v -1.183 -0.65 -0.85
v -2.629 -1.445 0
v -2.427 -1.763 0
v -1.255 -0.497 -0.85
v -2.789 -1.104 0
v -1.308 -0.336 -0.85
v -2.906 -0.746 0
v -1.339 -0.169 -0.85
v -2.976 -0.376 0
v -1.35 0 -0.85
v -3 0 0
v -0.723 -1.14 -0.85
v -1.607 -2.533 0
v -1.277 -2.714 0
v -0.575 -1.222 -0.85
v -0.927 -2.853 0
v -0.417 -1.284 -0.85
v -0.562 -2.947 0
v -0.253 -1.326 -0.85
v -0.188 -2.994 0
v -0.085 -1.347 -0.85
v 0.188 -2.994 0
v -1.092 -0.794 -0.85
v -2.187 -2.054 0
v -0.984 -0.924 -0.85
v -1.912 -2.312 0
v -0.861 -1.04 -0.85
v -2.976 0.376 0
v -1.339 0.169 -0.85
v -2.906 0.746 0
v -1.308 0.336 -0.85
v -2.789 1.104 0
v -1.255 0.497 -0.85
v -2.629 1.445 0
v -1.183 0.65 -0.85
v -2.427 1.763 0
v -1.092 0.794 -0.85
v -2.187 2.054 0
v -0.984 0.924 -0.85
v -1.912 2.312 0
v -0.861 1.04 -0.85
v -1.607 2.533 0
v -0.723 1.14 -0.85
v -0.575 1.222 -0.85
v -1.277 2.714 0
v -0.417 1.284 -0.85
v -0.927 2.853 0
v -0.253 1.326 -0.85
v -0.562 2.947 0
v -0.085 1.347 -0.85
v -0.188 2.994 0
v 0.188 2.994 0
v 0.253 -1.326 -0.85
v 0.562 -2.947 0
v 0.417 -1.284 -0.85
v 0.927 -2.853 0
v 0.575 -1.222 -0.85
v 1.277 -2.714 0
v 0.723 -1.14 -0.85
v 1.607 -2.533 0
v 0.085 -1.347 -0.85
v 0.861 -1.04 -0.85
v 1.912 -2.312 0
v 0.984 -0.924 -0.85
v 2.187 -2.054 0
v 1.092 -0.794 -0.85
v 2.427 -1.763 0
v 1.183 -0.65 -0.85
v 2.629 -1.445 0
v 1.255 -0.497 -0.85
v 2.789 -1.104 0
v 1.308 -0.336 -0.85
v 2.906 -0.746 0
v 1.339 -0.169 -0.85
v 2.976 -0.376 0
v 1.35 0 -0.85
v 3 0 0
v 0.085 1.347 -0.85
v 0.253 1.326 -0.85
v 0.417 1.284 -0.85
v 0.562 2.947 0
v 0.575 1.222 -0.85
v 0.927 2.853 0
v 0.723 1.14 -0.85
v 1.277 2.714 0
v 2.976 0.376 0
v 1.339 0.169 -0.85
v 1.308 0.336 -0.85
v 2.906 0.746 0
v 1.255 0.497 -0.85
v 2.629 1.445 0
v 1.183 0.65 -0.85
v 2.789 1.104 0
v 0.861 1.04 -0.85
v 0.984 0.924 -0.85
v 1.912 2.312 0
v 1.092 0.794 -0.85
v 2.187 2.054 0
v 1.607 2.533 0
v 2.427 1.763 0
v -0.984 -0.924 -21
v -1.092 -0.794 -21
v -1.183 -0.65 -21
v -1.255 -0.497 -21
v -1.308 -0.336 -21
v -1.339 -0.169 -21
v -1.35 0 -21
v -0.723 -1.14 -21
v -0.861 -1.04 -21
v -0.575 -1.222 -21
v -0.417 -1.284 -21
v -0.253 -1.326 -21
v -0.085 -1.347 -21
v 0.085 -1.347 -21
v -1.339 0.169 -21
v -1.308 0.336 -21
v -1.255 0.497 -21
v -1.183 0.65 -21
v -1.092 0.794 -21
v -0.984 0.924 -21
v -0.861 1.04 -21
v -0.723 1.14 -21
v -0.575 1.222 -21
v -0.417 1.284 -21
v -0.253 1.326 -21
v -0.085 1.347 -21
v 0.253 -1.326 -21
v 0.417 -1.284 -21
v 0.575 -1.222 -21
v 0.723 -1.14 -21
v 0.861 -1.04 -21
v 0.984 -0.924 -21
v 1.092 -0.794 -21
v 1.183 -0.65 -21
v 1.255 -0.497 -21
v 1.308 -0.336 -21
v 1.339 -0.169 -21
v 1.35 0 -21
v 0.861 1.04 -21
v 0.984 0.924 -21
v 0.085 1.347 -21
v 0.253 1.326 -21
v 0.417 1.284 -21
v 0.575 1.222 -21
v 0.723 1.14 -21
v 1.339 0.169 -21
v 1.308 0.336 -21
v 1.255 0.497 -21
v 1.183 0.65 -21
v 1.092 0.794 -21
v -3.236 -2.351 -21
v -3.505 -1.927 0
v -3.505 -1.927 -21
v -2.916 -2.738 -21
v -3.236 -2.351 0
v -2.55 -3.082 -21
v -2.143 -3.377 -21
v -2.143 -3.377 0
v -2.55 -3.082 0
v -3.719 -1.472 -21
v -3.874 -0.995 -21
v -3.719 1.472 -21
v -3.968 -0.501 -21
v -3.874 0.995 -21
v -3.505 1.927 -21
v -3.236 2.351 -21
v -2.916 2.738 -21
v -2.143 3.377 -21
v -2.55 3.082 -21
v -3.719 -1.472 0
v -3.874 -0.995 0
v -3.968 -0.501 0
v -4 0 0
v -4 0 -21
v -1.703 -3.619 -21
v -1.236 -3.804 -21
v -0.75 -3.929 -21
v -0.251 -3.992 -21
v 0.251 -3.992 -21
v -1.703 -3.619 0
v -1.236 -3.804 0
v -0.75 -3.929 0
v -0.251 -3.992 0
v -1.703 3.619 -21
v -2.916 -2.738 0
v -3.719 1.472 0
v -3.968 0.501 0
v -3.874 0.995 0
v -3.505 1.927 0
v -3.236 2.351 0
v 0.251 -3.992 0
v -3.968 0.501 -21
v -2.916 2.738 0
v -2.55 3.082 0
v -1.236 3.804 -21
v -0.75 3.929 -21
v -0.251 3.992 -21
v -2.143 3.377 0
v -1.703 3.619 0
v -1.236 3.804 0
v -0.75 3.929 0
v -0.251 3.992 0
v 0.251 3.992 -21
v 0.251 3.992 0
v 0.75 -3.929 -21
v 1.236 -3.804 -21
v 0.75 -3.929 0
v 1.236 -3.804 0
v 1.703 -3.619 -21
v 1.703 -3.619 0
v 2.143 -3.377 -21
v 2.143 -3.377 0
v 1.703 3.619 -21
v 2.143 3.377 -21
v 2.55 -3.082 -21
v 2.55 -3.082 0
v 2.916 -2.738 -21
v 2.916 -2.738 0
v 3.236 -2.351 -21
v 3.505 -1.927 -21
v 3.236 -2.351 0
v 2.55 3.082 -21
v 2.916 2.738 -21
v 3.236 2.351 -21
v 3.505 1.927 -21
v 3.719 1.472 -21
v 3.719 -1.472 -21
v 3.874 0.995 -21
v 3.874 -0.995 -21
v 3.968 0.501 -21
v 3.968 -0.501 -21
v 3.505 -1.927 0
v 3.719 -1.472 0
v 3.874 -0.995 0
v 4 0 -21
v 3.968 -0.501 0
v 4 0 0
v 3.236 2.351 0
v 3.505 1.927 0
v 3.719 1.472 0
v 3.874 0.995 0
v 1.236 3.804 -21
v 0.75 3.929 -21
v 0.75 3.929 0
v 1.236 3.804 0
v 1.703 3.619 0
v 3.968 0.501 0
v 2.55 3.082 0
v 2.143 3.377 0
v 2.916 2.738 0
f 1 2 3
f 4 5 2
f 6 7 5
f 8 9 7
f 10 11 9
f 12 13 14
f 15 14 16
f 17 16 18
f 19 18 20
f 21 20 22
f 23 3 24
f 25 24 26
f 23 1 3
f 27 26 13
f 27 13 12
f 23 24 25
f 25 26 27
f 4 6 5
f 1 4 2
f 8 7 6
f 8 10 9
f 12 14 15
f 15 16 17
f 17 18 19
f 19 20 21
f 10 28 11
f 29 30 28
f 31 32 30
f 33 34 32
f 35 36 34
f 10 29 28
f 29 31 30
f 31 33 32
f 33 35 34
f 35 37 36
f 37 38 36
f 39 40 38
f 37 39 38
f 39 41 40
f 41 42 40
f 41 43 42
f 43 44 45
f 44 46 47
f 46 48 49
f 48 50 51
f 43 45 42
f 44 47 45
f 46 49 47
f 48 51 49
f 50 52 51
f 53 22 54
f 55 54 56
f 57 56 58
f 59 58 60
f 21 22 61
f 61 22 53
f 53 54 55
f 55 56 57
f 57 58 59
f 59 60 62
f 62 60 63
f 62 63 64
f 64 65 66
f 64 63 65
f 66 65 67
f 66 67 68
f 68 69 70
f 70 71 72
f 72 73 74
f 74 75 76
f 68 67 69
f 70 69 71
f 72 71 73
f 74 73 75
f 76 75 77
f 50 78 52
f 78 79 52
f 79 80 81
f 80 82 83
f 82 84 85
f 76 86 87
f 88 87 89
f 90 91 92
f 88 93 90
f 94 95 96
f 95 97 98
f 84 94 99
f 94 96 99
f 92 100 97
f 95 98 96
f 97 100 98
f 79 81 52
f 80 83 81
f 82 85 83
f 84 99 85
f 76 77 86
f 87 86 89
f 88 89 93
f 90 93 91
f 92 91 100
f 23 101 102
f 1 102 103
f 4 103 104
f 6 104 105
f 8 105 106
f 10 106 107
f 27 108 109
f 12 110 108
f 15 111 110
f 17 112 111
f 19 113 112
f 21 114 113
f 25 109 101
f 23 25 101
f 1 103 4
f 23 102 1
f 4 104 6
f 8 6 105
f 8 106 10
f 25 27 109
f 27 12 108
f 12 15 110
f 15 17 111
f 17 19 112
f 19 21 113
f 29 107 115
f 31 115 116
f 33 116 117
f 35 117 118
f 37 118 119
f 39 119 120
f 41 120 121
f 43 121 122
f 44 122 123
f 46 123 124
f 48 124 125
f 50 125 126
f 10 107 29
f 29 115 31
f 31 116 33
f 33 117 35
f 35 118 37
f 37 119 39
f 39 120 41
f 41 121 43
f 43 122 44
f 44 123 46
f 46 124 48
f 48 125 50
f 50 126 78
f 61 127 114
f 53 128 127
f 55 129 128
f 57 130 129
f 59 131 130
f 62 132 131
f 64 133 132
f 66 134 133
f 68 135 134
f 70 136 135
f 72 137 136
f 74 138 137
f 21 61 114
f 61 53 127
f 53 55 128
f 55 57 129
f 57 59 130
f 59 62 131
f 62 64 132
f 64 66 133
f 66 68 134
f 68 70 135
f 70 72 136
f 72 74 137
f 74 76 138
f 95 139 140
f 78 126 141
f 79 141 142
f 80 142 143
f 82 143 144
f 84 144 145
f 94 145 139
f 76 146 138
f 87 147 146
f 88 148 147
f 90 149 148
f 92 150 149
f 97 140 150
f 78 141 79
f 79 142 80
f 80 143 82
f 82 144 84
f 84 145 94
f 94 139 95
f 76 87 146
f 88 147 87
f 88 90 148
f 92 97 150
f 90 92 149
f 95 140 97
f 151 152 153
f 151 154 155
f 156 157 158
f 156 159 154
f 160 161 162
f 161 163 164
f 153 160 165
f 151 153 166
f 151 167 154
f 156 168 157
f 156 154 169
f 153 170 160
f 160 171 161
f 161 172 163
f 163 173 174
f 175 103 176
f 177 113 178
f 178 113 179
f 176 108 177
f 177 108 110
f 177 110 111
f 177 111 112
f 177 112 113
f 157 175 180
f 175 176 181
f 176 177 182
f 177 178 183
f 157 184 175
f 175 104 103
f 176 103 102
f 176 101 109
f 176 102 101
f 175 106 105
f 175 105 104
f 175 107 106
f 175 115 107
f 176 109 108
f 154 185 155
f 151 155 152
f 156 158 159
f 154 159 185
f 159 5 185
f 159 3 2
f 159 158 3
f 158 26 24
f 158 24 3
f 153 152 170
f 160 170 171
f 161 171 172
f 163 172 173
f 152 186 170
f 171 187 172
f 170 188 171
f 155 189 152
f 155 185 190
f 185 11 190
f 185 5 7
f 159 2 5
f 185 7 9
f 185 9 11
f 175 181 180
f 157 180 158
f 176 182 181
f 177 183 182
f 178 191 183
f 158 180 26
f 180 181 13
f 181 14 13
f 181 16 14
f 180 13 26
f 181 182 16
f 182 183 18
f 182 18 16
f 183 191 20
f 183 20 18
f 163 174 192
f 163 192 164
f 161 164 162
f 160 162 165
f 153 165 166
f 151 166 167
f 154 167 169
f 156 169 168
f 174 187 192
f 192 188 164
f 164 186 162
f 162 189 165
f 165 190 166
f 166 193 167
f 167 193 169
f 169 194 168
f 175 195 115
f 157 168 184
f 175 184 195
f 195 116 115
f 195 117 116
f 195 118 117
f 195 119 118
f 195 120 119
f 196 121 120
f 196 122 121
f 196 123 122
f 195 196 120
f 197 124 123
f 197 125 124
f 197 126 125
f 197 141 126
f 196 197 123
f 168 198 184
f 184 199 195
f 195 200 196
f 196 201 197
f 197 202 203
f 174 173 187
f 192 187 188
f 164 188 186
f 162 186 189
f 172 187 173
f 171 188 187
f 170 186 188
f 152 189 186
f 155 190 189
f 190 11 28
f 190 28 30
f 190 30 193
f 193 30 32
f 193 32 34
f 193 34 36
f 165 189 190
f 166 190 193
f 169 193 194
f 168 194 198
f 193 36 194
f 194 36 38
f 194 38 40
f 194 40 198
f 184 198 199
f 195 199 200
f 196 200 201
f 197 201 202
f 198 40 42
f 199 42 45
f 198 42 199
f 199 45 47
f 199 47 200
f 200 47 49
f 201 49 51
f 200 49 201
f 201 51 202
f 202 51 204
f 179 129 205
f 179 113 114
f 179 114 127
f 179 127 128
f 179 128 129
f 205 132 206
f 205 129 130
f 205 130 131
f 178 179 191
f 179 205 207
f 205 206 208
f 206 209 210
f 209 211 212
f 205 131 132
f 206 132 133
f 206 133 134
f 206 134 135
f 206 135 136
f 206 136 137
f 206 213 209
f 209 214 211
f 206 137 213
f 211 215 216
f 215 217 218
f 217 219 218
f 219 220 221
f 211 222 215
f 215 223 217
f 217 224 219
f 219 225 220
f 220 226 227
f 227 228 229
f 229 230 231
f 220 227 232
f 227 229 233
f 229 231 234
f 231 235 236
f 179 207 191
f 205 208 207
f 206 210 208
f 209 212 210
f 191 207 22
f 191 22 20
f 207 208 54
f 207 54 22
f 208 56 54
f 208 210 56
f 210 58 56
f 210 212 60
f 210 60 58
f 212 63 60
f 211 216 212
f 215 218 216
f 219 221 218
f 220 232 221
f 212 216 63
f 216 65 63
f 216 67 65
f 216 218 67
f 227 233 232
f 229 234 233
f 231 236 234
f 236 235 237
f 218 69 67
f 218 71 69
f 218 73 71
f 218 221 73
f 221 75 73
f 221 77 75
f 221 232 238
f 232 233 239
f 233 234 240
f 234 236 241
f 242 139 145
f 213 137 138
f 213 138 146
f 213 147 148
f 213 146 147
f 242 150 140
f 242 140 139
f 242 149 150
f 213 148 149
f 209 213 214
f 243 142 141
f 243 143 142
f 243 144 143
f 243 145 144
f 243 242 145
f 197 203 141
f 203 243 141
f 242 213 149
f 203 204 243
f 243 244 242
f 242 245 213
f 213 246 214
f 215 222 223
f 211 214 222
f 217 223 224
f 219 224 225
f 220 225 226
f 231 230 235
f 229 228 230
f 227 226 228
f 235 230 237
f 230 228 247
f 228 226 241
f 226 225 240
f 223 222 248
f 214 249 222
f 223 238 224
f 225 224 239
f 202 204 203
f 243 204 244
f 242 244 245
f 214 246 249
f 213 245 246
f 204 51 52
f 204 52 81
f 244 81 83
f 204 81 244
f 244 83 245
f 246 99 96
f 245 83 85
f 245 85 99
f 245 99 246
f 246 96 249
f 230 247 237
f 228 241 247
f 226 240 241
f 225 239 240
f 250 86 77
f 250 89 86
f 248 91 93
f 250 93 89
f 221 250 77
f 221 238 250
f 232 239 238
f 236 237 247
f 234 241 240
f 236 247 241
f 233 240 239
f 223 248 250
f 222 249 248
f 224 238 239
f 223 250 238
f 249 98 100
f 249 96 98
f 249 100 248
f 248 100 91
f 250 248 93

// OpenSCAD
$fn = 50;

difference() {
	union() {
		translate(v = [0, 0, -21.0]) {
			cylinder(h = 21, r = 4.0);
		}
	}
	union() {
		translate(v = [0, 0, 0]) {
			rotate(a = [0, 0, 0]) {
				difference() {
					union() {
						translate(v = [0, 0, -24.0]) {
							cylinder(h = 24, r = 1.0);
						}
						translate(v = [0, 0, -0.85]) {
							cylinder(h = 0.85, r1 = 1.35, r2 = 3.0);
						}
						translate(v = [0, 0, -24.0]) {
							cylinder(h = 24, r = 1.35);
						}
						translate(v = [0, 0, -24.0]) {
							cylinder(h = 24, r = 1.0);
						}
					}
					union();
				}
			}
		}
	}
}
